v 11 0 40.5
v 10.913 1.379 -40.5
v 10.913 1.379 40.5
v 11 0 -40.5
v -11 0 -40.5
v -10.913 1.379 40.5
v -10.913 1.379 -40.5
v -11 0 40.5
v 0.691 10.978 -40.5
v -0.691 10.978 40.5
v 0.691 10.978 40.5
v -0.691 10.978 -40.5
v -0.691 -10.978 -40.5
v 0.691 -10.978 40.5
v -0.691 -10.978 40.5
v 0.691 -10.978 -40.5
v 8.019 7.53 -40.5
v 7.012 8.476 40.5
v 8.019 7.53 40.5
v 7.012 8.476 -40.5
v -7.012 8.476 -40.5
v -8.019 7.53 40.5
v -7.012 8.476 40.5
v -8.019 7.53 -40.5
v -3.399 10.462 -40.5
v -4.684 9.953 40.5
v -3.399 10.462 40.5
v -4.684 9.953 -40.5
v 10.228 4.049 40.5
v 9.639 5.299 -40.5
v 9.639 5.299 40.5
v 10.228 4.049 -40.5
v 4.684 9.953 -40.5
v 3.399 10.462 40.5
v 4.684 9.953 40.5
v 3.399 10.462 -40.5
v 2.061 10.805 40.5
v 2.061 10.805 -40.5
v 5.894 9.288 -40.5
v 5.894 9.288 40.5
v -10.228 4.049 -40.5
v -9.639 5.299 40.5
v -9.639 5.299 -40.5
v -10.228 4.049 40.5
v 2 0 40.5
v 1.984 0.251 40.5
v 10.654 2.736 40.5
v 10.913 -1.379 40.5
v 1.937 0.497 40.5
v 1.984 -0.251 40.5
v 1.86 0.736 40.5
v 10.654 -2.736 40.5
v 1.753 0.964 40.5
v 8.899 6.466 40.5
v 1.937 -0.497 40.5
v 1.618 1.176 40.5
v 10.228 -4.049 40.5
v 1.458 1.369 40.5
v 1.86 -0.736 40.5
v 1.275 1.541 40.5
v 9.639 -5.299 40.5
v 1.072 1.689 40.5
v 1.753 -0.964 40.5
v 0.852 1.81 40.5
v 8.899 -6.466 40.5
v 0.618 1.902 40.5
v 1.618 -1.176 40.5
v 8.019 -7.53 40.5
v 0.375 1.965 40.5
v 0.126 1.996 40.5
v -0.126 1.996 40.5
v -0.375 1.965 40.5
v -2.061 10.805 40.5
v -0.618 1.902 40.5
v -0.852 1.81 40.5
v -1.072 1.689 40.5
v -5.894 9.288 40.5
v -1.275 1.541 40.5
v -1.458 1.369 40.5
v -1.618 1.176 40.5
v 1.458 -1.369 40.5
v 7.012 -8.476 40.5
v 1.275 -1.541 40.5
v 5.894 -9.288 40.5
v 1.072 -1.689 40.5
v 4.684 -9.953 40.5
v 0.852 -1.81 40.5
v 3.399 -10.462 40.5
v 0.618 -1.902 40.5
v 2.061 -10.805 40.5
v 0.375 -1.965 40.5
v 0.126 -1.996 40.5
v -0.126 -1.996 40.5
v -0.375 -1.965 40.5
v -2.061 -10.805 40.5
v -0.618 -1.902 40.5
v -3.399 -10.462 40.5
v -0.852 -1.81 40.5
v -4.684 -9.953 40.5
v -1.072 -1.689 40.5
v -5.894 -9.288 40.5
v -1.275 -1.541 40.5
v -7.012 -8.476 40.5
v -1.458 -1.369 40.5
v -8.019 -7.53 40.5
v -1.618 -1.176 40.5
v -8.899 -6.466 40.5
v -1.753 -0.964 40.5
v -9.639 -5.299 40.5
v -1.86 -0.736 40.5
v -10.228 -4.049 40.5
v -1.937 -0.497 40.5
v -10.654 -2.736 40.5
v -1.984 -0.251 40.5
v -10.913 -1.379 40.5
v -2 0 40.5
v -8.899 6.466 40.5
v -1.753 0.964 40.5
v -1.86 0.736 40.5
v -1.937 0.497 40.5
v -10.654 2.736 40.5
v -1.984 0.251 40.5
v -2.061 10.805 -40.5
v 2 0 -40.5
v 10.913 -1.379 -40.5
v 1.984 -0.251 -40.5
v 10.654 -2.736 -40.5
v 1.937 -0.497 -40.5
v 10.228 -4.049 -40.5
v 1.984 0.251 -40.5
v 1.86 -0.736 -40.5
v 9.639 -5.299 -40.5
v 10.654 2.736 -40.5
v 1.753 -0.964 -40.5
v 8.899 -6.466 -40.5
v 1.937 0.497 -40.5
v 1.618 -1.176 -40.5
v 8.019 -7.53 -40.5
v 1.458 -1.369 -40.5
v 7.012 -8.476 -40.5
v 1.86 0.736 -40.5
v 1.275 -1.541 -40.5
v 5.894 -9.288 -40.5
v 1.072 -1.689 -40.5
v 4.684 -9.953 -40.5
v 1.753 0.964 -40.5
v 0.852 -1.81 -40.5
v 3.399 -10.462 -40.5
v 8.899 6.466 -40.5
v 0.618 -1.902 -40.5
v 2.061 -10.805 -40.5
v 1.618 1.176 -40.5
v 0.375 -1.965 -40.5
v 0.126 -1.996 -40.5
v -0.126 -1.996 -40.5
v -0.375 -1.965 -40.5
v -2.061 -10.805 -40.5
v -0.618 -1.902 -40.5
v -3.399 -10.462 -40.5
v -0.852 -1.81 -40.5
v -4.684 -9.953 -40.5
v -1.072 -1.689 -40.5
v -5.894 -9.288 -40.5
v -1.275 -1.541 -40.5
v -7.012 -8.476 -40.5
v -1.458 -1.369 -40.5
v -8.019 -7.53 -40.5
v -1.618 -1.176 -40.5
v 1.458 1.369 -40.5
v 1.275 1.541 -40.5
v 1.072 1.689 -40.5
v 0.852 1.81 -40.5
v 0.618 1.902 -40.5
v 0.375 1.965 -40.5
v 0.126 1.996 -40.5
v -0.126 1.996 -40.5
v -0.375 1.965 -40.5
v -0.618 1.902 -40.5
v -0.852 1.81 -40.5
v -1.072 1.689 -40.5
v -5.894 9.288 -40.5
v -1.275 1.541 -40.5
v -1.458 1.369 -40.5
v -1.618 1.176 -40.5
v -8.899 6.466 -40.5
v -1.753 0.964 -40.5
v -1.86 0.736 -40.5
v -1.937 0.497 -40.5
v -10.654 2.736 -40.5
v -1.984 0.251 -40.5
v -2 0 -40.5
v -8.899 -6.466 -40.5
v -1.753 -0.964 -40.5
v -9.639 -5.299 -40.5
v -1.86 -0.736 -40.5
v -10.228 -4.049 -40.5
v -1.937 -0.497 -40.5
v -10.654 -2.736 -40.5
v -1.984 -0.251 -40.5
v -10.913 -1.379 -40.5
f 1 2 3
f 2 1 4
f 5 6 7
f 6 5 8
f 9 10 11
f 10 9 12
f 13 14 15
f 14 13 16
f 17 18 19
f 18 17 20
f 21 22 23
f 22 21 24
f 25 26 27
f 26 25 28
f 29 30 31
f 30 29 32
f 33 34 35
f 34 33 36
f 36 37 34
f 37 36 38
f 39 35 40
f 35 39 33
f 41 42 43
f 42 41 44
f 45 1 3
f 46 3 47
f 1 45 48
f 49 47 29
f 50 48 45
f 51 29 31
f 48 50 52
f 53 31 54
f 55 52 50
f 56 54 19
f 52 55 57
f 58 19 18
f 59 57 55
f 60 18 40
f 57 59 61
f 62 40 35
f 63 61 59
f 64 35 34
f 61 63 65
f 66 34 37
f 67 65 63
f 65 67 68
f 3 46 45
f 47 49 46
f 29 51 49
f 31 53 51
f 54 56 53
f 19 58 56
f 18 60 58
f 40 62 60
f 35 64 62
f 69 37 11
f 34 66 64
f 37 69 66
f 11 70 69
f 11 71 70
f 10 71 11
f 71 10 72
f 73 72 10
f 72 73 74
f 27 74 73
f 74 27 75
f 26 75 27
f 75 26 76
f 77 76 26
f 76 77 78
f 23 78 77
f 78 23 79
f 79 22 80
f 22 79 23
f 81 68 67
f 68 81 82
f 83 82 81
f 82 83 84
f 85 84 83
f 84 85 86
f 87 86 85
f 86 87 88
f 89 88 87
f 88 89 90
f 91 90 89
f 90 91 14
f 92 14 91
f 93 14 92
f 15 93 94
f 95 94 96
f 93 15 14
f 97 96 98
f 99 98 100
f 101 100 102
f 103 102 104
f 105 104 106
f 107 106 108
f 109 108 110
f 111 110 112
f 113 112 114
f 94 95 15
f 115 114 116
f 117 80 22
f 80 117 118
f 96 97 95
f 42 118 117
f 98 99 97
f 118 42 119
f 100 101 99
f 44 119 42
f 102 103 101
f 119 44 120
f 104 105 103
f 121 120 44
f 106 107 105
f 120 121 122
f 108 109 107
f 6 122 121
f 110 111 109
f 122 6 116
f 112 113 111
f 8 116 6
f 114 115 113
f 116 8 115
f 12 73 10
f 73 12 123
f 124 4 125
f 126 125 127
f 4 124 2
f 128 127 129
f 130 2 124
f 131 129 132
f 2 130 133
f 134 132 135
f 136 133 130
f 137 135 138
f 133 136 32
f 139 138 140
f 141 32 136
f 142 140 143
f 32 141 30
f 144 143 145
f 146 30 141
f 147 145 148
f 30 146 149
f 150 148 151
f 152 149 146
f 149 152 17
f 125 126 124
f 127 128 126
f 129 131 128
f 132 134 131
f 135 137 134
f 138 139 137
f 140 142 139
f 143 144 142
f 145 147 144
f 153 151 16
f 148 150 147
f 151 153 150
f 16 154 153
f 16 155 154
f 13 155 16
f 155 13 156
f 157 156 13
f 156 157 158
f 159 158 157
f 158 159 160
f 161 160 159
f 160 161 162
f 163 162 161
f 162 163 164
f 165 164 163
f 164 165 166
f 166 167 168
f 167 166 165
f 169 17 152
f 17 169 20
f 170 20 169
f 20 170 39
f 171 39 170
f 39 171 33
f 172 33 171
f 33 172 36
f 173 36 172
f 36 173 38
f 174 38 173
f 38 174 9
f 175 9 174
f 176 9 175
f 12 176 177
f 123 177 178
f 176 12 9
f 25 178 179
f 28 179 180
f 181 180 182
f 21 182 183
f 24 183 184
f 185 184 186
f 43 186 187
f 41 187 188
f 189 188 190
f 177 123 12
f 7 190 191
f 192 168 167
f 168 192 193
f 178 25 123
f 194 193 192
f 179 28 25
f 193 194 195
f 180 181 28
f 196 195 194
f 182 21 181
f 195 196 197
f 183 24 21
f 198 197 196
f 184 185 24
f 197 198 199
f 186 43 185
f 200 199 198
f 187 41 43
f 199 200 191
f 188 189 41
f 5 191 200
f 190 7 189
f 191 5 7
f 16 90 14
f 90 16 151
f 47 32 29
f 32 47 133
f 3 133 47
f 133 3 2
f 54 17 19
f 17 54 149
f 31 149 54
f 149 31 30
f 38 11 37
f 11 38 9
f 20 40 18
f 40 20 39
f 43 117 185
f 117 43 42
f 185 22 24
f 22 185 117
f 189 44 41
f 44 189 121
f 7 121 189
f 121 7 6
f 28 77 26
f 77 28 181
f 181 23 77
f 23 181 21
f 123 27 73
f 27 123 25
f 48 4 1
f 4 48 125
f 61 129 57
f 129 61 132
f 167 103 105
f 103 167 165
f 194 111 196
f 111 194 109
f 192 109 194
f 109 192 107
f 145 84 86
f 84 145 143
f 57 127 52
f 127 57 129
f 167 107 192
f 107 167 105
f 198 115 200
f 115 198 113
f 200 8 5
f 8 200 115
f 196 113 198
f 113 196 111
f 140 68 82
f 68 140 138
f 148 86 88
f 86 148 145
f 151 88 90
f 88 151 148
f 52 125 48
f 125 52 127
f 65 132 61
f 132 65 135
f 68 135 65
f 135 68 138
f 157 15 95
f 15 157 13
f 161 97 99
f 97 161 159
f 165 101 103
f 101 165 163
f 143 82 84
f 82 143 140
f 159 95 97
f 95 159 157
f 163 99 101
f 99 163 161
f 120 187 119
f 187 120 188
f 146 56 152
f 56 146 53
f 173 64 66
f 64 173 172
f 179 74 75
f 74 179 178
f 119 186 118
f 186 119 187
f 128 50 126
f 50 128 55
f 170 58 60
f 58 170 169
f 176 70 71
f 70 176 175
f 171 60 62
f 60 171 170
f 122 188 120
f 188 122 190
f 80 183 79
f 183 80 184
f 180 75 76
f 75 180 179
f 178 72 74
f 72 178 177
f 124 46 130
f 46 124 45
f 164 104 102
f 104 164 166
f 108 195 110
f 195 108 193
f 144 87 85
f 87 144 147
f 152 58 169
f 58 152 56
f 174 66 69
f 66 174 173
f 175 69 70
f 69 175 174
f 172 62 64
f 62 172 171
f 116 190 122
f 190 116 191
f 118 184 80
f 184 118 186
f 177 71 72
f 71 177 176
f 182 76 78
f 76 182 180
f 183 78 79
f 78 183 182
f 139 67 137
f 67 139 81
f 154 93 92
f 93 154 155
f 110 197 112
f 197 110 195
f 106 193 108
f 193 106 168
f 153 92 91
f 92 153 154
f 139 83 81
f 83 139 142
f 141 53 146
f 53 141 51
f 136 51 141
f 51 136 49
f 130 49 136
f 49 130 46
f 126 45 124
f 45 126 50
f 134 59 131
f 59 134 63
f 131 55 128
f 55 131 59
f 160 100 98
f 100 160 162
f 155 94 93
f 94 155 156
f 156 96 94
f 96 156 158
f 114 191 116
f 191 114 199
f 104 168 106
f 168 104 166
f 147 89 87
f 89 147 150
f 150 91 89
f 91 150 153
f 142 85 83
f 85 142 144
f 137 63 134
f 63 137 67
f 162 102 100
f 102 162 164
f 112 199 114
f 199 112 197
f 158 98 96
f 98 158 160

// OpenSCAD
$fn = 50;


difference() {
	union() {
		translate(v = [0, 0, -40.5000000000]) {
			cylinder(h = 81, r = 11.0000000000);
		}
	}
	union() {
		translate(v = [0, 0, -100.0000000000]) {
			cylinder(h = 200, r = 2);
		}
	}
}
